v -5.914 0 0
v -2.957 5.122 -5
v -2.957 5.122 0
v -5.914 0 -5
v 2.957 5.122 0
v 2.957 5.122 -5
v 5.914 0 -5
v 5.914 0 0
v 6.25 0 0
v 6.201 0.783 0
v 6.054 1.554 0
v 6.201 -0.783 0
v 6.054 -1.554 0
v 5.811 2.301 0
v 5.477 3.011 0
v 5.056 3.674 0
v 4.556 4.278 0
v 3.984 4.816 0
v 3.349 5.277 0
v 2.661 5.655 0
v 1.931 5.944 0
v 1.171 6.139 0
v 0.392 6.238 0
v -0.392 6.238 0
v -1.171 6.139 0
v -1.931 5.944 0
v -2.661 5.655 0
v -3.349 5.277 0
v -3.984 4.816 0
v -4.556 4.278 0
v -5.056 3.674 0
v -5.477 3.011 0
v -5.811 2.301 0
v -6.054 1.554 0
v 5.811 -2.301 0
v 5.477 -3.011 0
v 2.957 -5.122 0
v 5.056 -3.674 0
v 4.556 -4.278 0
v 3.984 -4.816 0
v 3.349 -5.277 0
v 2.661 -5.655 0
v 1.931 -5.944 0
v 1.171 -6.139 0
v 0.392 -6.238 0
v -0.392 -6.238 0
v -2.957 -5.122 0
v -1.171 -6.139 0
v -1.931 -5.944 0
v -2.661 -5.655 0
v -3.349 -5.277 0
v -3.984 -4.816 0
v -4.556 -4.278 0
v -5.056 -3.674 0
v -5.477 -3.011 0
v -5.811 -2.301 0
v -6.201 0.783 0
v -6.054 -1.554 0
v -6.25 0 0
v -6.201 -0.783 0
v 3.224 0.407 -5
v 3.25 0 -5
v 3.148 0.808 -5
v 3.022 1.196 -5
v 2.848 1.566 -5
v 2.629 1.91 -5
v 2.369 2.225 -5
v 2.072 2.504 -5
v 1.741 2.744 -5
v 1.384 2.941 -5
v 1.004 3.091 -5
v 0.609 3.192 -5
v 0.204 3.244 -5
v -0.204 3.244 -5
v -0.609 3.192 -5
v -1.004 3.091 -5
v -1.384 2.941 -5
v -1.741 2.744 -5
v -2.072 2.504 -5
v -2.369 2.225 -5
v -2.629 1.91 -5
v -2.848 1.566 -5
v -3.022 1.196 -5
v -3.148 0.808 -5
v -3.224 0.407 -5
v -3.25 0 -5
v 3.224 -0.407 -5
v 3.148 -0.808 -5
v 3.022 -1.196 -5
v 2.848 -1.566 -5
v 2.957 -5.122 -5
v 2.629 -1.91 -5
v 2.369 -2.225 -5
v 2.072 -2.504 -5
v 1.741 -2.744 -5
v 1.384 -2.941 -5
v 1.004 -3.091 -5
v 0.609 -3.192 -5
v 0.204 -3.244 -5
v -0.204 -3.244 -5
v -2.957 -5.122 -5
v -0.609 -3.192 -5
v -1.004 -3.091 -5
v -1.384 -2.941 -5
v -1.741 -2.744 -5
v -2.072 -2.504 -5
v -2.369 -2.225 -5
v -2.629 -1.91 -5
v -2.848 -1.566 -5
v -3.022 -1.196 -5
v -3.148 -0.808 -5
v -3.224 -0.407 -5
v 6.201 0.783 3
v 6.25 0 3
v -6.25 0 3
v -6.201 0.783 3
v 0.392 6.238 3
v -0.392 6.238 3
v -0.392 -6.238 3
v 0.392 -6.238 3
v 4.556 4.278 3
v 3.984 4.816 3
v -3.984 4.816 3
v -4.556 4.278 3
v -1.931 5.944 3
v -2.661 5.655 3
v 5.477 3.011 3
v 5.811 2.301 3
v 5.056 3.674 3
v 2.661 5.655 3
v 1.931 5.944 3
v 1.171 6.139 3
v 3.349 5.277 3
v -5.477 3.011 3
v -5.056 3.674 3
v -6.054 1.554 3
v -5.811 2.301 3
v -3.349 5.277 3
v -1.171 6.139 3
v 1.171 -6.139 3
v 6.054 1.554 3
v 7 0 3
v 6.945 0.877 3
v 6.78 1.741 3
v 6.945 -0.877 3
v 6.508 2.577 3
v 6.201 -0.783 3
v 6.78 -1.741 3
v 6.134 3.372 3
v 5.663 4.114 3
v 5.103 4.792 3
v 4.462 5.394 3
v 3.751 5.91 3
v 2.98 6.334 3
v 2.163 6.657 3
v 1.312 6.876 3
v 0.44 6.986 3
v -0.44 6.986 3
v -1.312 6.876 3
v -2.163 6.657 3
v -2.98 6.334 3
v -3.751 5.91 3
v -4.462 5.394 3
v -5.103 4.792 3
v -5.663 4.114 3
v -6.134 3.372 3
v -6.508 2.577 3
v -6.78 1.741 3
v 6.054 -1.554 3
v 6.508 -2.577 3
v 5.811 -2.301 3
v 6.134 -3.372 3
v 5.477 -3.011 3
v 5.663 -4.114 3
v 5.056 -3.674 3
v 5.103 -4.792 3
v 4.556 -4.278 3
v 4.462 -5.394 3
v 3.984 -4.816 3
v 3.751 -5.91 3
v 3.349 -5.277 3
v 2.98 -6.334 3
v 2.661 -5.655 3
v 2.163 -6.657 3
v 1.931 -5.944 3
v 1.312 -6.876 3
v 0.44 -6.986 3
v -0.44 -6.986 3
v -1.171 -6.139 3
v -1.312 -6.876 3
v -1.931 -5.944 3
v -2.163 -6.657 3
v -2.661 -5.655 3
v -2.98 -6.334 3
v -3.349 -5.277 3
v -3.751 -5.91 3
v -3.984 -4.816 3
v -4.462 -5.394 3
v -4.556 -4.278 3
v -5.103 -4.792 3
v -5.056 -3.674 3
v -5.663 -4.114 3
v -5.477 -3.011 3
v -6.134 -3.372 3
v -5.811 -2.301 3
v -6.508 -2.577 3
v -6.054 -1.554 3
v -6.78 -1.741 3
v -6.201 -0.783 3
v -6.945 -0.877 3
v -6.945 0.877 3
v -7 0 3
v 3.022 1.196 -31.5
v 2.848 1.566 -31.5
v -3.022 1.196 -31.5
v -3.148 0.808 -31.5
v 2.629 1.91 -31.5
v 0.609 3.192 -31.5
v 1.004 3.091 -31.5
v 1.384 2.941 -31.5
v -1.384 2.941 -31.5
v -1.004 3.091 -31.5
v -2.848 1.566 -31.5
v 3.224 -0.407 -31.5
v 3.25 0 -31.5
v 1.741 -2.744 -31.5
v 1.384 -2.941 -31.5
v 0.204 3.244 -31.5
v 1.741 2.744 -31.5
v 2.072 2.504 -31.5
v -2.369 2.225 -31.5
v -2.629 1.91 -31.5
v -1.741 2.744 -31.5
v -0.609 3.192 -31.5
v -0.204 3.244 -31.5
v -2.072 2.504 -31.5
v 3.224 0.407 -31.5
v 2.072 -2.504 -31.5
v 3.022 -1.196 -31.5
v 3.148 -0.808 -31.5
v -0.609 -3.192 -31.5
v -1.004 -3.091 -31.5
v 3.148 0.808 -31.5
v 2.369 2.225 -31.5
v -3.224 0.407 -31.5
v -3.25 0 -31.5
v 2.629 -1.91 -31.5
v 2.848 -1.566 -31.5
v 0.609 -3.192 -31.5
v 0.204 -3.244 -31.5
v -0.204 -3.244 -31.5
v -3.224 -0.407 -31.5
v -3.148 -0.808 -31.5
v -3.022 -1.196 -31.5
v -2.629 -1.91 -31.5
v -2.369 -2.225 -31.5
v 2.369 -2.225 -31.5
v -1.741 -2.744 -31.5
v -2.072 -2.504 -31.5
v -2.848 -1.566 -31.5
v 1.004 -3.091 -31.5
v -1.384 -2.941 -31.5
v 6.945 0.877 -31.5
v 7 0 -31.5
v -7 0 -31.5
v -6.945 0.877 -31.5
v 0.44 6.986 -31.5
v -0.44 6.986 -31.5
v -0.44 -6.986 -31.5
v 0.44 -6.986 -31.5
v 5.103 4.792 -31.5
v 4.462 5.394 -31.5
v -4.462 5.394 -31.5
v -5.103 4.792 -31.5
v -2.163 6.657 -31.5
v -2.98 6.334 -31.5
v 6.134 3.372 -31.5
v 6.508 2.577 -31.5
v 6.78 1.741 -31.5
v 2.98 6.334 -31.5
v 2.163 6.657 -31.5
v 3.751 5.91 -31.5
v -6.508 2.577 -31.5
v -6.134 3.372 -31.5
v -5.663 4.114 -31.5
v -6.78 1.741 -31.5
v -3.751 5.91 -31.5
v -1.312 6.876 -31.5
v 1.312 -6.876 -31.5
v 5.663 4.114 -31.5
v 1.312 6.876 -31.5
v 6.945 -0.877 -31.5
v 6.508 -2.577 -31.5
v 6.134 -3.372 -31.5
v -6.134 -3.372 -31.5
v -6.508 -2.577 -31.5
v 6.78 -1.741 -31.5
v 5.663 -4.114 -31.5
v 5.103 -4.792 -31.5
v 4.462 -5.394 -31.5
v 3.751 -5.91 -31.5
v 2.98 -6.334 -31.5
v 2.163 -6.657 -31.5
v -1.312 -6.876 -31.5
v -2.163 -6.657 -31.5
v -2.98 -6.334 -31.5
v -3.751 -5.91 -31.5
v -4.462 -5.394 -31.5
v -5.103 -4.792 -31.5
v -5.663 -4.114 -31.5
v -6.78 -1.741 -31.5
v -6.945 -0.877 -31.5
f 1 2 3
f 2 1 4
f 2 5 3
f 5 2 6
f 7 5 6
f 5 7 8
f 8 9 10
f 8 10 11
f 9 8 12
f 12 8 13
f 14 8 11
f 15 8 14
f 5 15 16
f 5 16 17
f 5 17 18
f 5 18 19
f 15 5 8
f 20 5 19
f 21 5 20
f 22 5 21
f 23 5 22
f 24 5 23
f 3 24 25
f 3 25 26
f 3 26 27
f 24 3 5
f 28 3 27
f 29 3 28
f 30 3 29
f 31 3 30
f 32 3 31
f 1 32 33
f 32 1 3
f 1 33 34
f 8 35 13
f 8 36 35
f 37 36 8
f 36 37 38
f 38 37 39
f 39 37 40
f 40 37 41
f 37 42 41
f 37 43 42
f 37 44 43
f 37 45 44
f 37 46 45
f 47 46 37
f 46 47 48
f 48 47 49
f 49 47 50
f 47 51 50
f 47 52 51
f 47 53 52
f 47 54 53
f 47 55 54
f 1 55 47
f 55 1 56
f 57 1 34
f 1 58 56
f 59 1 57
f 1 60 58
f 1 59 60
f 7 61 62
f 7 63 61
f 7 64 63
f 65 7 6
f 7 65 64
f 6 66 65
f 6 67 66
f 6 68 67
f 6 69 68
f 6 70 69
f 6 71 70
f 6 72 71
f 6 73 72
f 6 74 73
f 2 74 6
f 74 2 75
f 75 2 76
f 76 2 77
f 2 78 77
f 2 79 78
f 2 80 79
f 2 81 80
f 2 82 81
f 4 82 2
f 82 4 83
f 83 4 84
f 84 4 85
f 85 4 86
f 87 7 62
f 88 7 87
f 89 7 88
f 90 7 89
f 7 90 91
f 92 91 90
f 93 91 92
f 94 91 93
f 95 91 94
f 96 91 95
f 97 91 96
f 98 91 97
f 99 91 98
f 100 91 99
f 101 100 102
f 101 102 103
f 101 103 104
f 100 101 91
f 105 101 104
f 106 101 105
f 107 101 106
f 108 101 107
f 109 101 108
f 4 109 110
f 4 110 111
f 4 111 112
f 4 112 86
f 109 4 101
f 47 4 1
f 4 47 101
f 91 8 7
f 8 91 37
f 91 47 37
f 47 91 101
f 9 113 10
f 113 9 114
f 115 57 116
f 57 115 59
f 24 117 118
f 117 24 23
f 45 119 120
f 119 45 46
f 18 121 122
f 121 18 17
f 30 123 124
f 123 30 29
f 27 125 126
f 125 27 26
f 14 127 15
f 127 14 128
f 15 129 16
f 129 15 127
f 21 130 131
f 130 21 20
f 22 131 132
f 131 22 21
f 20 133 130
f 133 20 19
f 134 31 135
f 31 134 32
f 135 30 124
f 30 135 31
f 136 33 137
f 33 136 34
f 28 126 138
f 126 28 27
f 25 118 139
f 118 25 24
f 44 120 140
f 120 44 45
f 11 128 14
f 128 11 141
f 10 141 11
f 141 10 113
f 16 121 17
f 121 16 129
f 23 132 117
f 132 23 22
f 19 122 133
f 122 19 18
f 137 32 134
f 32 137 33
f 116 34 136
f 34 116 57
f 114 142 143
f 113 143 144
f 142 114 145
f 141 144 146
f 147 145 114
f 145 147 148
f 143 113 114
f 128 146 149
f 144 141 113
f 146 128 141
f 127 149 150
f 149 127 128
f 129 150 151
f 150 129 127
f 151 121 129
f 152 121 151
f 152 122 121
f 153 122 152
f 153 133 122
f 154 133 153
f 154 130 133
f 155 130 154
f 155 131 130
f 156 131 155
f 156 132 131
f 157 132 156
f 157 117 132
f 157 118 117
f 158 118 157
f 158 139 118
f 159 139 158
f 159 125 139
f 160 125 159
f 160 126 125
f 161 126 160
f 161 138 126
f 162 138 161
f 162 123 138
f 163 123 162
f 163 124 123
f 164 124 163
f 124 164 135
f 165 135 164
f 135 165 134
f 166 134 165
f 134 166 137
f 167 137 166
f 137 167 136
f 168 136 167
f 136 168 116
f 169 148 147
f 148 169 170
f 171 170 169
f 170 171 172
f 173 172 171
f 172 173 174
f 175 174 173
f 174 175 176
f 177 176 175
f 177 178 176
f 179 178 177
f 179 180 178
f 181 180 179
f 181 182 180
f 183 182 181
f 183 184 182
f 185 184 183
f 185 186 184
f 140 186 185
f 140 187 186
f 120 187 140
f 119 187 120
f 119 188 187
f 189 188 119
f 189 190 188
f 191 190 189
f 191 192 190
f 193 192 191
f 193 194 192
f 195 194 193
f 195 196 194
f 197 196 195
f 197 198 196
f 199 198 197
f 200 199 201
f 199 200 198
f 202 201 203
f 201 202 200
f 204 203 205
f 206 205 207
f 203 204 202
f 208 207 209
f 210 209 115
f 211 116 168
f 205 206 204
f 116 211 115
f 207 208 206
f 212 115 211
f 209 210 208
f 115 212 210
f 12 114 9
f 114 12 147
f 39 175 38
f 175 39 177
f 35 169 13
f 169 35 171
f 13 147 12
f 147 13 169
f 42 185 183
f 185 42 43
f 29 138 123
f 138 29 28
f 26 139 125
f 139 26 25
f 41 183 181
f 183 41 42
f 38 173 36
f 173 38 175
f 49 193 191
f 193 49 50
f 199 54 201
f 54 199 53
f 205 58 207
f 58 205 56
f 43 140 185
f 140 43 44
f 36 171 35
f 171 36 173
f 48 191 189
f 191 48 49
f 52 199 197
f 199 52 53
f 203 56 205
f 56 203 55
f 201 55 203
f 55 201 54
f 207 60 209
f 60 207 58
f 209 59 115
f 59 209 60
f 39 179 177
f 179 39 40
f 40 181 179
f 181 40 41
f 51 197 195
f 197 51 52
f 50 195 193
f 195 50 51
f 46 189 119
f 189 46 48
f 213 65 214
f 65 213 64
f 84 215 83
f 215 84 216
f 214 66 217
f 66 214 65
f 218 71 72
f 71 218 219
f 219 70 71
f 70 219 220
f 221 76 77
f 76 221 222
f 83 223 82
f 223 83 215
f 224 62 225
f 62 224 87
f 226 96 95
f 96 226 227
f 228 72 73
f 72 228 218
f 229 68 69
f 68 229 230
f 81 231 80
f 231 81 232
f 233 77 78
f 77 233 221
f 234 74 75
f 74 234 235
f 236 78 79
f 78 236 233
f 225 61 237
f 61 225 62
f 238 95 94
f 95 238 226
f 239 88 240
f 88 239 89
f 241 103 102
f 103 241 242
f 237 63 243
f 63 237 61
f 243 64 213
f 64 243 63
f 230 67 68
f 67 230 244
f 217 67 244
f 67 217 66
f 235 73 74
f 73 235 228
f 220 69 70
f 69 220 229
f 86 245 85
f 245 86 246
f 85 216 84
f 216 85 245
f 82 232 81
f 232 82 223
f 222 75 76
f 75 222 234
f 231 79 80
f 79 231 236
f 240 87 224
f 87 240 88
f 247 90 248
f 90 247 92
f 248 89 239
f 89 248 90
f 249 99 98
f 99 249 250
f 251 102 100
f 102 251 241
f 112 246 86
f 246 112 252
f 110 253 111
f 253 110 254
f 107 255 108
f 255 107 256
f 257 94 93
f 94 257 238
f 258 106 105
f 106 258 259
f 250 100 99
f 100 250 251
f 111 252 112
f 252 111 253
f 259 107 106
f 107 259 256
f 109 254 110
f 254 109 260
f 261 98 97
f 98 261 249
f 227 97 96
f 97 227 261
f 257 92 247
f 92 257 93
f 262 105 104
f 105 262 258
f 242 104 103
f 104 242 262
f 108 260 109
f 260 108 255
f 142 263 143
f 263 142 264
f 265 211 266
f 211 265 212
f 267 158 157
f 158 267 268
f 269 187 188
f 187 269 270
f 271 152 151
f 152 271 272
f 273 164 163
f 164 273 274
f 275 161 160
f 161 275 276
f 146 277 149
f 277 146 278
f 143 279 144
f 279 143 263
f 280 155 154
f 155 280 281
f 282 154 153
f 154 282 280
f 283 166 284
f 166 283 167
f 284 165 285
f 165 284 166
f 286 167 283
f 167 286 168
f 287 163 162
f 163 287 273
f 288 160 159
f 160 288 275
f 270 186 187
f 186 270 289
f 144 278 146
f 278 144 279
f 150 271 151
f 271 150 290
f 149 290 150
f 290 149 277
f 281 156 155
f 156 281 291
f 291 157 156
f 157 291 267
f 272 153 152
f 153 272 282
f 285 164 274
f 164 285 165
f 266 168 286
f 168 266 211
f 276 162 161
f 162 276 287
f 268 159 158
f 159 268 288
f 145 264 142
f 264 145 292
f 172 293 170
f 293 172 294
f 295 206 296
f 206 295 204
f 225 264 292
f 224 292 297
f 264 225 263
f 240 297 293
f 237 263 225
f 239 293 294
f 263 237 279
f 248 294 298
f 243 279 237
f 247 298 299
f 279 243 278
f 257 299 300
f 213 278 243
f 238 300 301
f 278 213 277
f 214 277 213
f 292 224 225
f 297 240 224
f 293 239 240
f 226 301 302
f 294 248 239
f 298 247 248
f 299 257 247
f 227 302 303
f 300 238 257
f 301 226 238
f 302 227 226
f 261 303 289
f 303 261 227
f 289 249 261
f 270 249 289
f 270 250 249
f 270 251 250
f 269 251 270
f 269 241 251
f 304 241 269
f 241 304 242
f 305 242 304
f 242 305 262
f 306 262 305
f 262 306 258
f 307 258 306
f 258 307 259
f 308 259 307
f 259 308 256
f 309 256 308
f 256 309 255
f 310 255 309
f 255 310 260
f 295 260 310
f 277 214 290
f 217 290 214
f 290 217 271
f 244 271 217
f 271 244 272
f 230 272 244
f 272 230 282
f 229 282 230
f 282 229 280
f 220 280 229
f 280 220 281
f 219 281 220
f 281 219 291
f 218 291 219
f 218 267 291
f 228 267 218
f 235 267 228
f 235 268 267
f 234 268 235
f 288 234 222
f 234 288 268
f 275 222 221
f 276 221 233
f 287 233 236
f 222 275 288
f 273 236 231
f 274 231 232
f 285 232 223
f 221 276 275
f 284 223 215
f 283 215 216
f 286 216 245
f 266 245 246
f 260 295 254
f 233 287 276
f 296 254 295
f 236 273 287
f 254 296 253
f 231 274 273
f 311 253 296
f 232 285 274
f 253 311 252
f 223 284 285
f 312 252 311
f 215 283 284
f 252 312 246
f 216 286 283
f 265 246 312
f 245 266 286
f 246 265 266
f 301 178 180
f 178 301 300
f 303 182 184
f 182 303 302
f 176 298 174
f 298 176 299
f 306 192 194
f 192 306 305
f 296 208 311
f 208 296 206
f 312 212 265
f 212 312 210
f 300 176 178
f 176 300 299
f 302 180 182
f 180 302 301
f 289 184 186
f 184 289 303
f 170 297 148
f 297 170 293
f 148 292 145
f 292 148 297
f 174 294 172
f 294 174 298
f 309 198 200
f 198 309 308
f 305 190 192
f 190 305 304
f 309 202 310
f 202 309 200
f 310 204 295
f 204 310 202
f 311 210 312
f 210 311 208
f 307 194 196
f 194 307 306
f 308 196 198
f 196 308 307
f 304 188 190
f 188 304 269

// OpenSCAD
$fn = 50;

difference() {
	union() {
		translate(v = [0, 0, -31.5]) {
			cylinder(h = 34.5, r = 7.0);
		}
	}
	union() {
		translate(v = [0, 0, 0]) {
			rotate(a = [0, 0, 0]) {
				difference() {
					union() {
						translate(v = [0, 0, -5]) {
							linear_extrude(height = 5) {
								polygon(points = [[5.914249999999999, 0.0], [2.957125, 5.1218907443321156], [-2.9571249999999982, 5.1218907443321156], [-5.914249999999999, 7.242867331857232e-16], [-2.9571250000000022, -5.121890744332115], [2.9571249999999956, -5.121890744332118]]);
							}
						}
					}
					union();
				}
			}
		}
		#cylinder(h = 3, r = 6.25);
		#translate(v = [0, 0, -100.0]) {
			cylinder(h = 200, r = 3.25);
		}
	}
}
